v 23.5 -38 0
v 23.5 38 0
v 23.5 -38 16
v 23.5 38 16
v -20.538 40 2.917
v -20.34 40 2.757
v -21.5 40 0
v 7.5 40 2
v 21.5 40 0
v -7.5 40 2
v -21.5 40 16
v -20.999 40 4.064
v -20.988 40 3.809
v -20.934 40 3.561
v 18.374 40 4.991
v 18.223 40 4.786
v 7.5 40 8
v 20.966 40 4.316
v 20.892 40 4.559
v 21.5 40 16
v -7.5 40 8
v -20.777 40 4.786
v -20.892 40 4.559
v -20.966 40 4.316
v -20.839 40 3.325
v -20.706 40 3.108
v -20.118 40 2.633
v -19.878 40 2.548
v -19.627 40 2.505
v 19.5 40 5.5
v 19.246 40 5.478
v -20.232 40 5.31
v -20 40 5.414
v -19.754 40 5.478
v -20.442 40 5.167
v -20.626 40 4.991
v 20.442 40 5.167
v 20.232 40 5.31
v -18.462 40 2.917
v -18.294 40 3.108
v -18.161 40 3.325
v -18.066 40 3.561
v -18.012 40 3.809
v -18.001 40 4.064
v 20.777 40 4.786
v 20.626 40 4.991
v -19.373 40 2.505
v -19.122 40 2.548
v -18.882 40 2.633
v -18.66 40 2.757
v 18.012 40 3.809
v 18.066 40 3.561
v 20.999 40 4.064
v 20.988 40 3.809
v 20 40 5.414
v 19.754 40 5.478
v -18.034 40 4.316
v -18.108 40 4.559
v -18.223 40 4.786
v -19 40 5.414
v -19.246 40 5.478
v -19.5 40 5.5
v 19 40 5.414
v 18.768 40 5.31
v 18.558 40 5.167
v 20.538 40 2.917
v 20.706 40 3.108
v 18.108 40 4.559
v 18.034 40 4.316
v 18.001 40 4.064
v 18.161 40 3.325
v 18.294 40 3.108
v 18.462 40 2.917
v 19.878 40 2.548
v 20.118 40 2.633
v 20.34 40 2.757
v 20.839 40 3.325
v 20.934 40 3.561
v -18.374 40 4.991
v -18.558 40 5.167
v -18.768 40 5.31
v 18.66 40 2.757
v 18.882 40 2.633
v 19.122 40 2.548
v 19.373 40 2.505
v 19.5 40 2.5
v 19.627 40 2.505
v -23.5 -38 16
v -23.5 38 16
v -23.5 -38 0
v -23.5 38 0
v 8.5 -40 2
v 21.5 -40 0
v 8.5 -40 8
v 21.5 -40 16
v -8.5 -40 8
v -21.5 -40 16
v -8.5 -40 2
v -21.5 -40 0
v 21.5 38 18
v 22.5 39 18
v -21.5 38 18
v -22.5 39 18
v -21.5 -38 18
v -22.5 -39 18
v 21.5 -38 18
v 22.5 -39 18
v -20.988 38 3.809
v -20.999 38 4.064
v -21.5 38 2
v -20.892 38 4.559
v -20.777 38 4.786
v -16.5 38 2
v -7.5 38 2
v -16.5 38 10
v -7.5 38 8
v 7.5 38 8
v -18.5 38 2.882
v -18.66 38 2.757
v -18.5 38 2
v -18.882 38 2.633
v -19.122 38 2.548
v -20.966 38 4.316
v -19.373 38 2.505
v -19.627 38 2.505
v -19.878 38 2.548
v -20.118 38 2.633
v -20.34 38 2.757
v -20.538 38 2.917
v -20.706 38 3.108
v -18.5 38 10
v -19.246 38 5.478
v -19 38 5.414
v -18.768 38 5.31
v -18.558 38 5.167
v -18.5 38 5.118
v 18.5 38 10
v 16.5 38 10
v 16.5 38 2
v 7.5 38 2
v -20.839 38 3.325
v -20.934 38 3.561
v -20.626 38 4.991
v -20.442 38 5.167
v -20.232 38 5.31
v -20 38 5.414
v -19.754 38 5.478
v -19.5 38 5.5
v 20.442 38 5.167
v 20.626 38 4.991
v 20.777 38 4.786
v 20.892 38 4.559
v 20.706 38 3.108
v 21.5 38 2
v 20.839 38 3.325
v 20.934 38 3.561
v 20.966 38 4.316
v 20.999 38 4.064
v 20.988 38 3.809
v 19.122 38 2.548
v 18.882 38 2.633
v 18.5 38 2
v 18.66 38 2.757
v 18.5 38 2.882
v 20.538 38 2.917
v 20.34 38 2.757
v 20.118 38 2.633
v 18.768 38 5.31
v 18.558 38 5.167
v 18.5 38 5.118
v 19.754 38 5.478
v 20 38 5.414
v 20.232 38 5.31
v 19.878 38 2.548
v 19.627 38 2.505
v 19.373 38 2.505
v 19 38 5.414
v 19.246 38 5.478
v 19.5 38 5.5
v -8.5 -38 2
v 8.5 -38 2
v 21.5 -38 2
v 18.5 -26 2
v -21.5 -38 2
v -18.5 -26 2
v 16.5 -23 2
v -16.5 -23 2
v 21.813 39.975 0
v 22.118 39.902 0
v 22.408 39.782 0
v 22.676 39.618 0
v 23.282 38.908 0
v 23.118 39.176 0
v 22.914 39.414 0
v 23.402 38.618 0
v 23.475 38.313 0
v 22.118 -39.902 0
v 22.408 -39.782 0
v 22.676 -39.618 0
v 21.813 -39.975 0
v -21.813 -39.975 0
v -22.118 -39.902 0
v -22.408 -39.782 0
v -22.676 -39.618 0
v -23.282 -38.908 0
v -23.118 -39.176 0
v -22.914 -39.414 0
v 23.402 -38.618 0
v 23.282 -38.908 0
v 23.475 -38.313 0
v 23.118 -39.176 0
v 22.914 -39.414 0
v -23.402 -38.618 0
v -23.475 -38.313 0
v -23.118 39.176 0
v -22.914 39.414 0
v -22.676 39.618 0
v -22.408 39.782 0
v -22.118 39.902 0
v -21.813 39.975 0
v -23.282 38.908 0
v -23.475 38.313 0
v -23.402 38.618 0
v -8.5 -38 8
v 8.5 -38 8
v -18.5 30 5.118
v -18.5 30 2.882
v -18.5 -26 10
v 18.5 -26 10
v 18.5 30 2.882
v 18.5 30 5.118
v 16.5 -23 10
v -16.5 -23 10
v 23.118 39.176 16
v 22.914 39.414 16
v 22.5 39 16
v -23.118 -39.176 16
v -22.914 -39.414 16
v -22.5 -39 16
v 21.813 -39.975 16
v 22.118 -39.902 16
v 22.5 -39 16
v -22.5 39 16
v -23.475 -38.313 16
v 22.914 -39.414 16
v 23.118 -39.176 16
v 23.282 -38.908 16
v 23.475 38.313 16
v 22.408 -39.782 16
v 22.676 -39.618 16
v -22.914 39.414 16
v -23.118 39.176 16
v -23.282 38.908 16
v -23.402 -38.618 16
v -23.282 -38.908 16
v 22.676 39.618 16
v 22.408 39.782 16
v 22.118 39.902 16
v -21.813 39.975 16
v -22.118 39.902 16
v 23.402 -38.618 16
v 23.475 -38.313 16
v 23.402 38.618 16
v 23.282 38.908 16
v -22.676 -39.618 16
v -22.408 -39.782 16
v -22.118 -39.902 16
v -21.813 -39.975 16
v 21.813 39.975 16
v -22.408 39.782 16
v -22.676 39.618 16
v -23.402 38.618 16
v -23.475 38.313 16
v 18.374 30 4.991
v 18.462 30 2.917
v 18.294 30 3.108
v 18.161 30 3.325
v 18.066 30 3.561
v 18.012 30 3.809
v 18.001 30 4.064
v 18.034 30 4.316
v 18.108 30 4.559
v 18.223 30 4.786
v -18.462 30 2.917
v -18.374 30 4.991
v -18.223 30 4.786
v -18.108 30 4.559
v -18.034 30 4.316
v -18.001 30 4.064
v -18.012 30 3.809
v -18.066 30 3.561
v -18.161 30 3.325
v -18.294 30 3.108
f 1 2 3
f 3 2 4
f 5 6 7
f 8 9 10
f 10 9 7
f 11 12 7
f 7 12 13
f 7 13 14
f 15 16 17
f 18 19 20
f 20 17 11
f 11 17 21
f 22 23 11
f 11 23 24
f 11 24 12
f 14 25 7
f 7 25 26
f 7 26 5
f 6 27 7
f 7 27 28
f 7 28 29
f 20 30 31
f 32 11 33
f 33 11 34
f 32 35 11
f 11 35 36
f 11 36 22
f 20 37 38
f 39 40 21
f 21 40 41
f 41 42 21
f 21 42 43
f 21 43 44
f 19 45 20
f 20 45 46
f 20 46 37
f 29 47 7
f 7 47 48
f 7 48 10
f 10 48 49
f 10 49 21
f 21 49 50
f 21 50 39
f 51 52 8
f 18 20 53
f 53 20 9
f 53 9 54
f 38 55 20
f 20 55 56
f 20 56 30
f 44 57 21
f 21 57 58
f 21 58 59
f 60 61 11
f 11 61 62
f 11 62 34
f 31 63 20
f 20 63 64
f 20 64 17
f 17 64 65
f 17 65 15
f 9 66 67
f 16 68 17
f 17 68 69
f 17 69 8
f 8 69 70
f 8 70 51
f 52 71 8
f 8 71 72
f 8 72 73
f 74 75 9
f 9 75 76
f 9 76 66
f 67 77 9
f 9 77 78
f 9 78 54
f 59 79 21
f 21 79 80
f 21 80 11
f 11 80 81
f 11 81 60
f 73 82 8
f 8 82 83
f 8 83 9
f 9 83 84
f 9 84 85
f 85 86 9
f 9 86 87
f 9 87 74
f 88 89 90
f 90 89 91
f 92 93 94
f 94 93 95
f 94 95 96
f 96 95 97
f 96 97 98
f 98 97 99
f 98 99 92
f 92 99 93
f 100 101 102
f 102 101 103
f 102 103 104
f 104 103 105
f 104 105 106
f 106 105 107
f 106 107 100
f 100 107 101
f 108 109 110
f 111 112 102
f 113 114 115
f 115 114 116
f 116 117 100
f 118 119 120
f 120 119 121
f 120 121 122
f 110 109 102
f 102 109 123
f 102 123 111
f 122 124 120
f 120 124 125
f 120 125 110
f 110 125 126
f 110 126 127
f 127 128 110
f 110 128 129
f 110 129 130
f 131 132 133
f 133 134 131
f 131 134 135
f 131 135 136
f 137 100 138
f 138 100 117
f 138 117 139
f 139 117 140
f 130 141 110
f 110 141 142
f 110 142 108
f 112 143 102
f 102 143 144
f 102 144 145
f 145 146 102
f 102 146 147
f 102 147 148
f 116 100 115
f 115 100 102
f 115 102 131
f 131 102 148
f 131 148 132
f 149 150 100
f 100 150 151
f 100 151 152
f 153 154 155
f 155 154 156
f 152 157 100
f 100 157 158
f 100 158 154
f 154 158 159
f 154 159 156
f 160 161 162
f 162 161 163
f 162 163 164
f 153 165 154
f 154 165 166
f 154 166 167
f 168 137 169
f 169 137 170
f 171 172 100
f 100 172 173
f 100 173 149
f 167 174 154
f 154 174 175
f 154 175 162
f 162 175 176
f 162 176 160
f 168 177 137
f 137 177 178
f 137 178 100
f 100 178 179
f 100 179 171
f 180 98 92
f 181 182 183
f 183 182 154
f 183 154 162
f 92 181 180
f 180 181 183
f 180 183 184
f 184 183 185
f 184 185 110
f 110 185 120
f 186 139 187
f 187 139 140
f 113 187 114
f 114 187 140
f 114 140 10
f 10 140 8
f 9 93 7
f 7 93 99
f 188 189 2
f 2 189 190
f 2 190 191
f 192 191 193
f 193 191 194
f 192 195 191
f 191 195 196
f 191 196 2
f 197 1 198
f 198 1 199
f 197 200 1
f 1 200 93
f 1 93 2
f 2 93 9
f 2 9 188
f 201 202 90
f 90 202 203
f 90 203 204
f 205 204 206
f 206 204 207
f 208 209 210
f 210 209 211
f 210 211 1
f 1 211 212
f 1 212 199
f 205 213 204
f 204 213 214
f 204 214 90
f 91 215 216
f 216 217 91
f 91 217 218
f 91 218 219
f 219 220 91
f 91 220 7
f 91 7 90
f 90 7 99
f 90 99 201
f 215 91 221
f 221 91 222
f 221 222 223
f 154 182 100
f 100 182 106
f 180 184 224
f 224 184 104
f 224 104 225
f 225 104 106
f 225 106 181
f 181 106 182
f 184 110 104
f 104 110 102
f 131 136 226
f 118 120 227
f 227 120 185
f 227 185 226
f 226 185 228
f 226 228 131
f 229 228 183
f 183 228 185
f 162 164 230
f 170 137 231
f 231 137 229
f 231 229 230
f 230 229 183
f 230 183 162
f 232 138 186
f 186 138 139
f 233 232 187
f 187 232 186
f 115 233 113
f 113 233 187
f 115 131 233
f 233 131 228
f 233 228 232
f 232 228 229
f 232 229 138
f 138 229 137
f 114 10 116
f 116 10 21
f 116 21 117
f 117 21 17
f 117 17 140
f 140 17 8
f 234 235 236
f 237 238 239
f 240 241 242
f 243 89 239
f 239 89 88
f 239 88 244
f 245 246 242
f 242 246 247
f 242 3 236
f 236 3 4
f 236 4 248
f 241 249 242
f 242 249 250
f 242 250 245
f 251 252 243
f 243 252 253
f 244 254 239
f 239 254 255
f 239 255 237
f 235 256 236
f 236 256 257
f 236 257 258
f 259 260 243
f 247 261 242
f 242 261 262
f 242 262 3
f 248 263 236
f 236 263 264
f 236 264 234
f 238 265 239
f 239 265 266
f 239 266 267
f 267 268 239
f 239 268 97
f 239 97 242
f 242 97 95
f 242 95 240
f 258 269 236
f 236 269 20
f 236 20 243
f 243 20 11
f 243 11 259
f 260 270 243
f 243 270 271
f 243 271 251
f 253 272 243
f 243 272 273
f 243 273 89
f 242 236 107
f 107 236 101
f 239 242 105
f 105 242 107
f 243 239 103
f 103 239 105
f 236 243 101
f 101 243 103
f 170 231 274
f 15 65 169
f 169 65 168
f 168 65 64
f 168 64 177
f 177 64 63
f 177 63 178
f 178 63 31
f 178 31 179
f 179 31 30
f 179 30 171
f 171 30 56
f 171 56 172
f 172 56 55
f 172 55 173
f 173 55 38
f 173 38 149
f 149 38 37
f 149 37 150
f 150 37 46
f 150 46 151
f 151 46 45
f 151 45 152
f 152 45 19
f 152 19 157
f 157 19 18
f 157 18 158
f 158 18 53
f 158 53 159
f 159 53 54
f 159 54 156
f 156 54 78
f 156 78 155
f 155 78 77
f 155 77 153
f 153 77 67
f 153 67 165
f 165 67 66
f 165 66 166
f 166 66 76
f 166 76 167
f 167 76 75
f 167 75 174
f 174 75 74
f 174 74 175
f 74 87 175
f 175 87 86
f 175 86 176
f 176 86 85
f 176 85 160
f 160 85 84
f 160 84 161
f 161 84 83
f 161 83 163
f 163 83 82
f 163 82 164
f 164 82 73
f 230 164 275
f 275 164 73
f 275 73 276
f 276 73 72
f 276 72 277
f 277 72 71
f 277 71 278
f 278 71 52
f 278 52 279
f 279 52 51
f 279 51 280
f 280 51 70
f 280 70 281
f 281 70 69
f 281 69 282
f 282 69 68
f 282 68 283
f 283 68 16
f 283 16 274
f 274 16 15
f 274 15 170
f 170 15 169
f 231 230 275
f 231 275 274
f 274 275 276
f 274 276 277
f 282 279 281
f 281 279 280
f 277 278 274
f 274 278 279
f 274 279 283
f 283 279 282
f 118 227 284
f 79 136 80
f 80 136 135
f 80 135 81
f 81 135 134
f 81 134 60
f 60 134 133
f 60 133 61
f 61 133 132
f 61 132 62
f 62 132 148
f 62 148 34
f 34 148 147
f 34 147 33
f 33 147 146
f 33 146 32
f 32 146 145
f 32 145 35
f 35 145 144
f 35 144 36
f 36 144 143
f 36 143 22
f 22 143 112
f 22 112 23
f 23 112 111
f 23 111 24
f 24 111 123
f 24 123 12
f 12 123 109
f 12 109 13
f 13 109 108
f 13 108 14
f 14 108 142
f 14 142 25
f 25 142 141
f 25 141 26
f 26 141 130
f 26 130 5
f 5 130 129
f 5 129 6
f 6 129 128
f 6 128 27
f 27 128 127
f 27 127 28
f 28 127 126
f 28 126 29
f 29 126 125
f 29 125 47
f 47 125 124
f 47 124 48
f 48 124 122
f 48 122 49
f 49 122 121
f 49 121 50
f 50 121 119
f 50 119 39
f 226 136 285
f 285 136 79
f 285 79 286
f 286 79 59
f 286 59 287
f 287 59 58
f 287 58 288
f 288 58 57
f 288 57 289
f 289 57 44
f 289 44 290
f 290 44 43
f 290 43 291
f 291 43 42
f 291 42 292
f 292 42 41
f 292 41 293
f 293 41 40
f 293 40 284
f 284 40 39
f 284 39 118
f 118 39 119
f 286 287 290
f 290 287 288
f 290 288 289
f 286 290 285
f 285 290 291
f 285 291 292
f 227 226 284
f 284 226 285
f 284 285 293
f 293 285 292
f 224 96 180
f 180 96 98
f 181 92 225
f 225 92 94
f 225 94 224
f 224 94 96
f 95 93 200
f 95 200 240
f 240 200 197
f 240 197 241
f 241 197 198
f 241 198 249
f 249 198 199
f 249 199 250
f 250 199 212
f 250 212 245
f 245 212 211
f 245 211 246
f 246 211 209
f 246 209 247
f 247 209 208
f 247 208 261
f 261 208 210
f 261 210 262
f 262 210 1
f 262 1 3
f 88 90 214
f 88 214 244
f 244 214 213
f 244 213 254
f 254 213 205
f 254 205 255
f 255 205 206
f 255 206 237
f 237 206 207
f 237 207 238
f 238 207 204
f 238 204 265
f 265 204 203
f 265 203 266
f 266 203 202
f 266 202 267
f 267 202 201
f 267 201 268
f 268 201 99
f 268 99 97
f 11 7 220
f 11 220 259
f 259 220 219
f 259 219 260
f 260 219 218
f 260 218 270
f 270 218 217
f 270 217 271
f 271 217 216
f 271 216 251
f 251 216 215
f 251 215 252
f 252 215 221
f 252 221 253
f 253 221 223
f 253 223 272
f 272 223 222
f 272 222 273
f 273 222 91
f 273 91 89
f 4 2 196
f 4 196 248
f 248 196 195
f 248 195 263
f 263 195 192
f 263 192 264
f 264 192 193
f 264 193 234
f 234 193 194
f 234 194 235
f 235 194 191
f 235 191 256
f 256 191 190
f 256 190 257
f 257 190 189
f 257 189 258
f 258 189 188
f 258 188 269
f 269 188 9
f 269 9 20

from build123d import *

# Parameters (mm, degrees)
SKETCH1_W           = 47
SKETCH1_H           = 80
BOSS_EXTRUDE1_DEPTH = 18
SKETCH2_W           = 43
SKETCH2_H           = 76
CUT_EXTRUDE1_DEPTH  = 16
BOSS_EXTRUDE2_DEPTH = 8
SKETCH6_W           = 15
SKETCH6_H           = 6
CUT_EXTRUDE4_DEPTH  = 11
SKETCH8_W           = 47
SKETCH8_H           = 80
SKETCH8_W_2         = 45
SKETCH8_H_2         = 78
CUT_EXTRUDE5_DEPTH  = 2
SKETCH9_R           = 1.5
CUT_EXTRUDE6_DEPTH  = 10
SKETCH11_W          = 17
SKETCH11_H          = 6
CUT_EXTRUDE9_DEPTH  = 10
FILLET4_R           = 2


with BuildPart() as part:
    # Sketch1 → Boss-Extrude1 (new body)
    with BuildSketch(Plane.XY):
        Rectangle(SKETCH1_W, SKETCH1_H)
    extrude(amount=BOSS_EXTRUDE1_DEPTH)

    # Sketch2 → Cut-Extrude1 (cut)
    with BuildSketch(Plane.XY.offset(18)):
        Rectangle(SKETCH2_W, SKETCH2_H)
    extrude(amount=-CUT_EXTRUDE1_DEPTH, mode=Mode.SUBTRACT)

    # Sketch3 → Boss-Extrude2 (add)
    with BuildSketch(Plane.XY.offset(2)):
        Polygon((-18.5, 38), (-16.5, 38), (-16.5, -23), (16.5, -23), (16.5, 38), (18.5, 38), (18.5, -26), (-18.5, -26), align=None)
    extrude(amount=BOSS_EXTRUDE2_DEPTH)

    # Sketch6 → Cut-Extrude4 (cut)
    with BuildSketch(Plane.XZ.offset(-38)):
        with Locations((0, 5)):
            Rectangle(SKETCH6_W, SKETCH6_H)
    extrude(amount=-CUT_EXTRUDE4_DEPTH, mode=Mode.SUBTRACT)

    # Sketch8 → Cut-Extrude5 (cut)
    with BuildSketch(Plane.XY.offset(18)):
        Rectangle(SKETCH8_W, SKETCH8_H)
        Rectangle(SKETCH8_W_2, SKETCH8_H_2, mode=Mode.SUBTRACT)
    extrude(amount=-CUT_EXTRUDE5_DEPTH, mode=Mode.SUBTRACT)

    # Sketch9 → Cut-Extrude6 (cut)
    with BuildSketch(Plane(origin=(0, 40, 0), x_dir=(1, 0, 0), z_dir=(0, 1, 0))):
        with Locations(Location((-19.5, -4, 0), (0, 0, 270))):
            Circle(SKETCH9_R)
        with Locations(Location((19.5, -4, 0), (0, 0, 228.189685104))):
            Circle(SKETCH9_R)
    extrude(amount=-CUT_EXTRUDE6_DEPTH, mode=Mode.SUBTRACT)

    # Sketch11 → Cut-Extrude9 (cut)
    with BuildSketch(Plane(origin=(0, -38, 0), x_dir=(1, 0, 0), z_dir=(0, 1, 0))):
        with Locations((0, -5)):
            Rectangle(SKETCH11_W, SKETCH11_H)
    extrude(amount=-CUT_EXTRUDE9_DEPTH, mode=Mode.SUBTRACT)

    # Fillet4
    fillet4_edges = [part.edges().sort_by_distance(p)[0] for p in [
        (23.5, -40, 8),
        (-23.5, -40, 8),
        (-23.5, 40, 8),
        (23.5, 40, 8),
    ]]
    fillet(fillet4_edges, radius=FILLET4_R)


solid = part.part
